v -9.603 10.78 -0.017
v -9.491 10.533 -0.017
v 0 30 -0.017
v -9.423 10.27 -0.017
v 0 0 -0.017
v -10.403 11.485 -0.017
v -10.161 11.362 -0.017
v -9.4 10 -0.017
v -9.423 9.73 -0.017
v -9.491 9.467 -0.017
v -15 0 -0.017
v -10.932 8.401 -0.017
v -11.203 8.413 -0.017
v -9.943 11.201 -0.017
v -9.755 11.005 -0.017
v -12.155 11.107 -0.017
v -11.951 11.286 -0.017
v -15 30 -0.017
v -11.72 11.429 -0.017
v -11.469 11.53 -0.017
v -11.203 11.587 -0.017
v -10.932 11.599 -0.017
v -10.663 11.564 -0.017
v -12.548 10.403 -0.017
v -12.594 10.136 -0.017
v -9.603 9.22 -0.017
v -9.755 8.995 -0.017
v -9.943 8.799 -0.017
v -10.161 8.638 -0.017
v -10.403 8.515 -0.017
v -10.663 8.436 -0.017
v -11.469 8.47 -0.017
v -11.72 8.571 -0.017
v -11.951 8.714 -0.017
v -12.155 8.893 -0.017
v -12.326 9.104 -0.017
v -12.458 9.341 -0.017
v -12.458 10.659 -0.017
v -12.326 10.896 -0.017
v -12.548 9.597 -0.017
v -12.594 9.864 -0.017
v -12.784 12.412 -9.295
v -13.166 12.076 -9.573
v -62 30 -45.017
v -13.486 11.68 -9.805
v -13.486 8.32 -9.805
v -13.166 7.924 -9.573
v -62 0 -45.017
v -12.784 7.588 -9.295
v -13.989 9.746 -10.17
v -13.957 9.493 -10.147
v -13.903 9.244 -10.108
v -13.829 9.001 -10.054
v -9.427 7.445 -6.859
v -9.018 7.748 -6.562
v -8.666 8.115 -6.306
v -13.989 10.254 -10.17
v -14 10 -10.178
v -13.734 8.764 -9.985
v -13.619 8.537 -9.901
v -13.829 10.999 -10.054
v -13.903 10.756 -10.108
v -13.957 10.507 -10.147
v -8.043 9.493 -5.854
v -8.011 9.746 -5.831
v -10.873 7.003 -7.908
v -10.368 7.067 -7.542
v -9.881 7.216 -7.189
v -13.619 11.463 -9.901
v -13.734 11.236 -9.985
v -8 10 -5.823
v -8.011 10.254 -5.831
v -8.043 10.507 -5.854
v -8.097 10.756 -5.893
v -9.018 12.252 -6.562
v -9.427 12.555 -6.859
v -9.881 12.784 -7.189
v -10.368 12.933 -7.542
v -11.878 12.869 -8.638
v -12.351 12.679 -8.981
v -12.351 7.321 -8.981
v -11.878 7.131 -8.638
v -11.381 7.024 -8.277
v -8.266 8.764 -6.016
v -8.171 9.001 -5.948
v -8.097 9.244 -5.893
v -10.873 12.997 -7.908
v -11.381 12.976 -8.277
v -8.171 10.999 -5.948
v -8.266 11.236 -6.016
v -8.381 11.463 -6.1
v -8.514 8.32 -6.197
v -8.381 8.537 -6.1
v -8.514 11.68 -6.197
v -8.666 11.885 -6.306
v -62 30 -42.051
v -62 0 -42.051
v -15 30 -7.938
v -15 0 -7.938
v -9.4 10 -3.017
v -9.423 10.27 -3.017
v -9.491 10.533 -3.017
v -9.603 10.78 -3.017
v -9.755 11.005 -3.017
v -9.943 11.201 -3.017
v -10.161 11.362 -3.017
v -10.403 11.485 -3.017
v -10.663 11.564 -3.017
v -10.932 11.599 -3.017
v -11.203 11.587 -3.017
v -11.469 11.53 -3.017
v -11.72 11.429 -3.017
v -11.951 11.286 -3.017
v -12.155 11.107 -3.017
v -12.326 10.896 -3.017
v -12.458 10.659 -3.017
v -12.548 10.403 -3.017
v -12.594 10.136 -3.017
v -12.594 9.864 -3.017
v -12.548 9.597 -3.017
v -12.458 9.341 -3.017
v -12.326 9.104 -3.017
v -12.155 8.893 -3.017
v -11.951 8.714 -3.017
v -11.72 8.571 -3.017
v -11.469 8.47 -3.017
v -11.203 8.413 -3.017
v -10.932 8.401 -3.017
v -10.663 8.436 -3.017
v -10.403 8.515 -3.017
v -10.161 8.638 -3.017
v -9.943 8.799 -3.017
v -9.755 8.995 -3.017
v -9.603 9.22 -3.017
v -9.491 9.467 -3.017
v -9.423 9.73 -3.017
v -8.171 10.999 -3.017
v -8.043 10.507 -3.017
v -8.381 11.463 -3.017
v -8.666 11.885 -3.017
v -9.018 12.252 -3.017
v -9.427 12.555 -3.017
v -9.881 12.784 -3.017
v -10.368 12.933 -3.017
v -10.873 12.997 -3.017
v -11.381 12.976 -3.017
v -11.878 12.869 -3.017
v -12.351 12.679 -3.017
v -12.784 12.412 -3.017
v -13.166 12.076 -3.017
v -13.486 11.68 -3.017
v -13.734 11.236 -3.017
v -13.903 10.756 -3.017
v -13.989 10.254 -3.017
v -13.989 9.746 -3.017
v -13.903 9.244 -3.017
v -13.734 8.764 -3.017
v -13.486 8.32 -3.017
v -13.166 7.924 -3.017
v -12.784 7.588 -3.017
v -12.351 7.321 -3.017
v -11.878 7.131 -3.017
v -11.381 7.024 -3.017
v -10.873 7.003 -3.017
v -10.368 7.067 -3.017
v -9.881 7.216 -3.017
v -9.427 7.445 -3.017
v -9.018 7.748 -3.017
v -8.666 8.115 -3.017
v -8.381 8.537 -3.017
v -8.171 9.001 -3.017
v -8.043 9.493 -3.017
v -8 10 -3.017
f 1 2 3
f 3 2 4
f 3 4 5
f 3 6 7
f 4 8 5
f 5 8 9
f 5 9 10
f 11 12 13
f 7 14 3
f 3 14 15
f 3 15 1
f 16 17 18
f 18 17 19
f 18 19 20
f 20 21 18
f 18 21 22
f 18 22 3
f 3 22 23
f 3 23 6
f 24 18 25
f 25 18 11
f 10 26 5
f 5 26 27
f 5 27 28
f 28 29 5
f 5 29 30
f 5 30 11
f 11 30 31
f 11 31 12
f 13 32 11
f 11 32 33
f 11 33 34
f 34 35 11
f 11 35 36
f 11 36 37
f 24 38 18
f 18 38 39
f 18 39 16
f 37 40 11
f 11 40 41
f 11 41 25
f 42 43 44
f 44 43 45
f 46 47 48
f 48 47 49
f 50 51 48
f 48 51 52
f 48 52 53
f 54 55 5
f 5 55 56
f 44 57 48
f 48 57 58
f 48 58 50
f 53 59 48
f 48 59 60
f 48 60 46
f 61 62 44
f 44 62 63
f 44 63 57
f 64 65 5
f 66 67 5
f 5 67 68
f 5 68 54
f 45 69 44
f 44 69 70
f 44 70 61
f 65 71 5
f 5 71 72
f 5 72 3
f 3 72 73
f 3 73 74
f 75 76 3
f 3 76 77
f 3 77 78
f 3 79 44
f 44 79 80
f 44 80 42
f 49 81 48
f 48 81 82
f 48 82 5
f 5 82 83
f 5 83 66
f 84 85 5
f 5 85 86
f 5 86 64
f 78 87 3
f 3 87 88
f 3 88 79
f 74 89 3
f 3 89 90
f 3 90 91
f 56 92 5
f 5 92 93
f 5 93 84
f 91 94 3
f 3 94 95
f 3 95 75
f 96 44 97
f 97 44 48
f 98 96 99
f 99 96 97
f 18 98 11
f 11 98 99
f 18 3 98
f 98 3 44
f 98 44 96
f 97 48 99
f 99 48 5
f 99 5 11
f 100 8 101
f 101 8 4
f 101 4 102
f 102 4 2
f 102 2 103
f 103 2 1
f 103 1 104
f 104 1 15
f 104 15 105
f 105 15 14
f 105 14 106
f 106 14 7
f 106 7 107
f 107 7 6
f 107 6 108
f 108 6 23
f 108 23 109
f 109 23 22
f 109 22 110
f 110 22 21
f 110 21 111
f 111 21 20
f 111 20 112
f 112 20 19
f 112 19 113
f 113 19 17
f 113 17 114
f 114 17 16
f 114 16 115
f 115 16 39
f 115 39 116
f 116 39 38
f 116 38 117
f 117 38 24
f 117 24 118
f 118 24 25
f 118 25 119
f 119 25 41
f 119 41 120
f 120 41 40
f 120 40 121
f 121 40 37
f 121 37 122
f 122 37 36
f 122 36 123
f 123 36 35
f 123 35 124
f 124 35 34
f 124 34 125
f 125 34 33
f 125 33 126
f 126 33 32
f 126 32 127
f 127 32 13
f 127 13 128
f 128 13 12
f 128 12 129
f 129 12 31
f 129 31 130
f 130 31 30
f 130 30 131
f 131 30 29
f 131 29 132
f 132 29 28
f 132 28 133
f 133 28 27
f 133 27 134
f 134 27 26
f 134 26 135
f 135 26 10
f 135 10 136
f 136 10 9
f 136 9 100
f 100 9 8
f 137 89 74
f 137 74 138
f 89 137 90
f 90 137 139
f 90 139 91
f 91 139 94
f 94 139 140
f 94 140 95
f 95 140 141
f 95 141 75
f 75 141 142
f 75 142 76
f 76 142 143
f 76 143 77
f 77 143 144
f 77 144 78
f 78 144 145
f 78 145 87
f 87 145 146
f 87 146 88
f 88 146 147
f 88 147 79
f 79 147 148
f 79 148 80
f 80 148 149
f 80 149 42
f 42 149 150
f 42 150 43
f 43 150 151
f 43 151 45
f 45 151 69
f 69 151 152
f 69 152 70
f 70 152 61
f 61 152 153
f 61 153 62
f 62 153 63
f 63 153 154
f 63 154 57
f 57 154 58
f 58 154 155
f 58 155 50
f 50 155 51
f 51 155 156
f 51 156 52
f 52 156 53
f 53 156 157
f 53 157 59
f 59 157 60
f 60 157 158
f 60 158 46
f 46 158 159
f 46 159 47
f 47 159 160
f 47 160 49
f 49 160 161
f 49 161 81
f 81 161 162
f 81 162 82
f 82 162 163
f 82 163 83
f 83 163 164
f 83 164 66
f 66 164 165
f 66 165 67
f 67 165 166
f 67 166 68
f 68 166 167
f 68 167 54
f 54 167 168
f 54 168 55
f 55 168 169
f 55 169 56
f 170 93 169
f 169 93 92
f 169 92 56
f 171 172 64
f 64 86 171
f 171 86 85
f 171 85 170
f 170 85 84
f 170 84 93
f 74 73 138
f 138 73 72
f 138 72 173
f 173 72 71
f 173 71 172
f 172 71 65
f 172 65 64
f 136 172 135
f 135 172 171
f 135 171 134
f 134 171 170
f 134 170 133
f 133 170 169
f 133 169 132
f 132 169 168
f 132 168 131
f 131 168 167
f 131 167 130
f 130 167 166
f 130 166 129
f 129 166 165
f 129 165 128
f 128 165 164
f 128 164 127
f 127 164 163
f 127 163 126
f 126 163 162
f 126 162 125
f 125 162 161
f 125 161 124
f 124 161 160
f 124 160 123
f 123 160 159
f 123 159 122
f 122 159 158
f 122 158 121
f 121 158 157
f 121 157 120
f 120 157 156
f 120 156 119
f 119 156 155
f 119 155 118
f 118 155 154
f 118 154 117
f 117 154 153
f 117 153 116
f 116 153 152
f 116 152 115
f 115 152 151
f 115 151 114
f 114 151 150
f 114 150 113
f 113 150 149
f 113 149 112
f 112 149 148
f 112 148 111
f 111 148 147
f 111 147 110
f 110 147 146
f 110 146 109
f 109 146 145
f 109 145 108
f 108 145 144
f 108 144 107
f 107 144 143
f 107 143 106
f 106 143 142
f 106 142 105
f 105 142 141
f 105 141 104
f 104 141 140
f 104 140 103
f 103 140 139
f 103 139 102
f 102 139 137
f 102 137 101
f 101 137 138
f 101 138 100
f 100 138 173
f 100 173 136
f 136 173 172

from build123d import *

# Parameters (mm, degrees)
EXTRUDE_1_DEPTH     = 30
SKETCH_2_R          = 1.6
CUT_EXTRUDE_1_DEPTH = 83.29890272
CUT_EXTRUDE_2_REACH = 82.696
SKETCH_3_R          = 3


with BuildPart() as part:
    # 草图1 → 凸台-拉伸1 (new body)
    with BuildSketch(Plane(origin=(0, 0, 0), x_dir=(1, 0, 0), z_dir=(0, 1, 0))):
        Polygon((0, 0), (-62, 45.045636736), (-62, 42.07907359), (-15, 7.931574774), (-15, 0), align=None)
    extrude(amount=EXTRUDE_1_DEPTH)

    # 草图2 → 切除-拉伸1 (cut, through all)
    with BuildSketch(Plane.XY):
        with Locations((-11, 10)):
            Circle(SKETCH_2_R)
    extrude(amount=-CUT_EXTRUDE_1_DEPTH, mode=Mode.SUBTRACT)

    # 切除-拉伸2: up to this plane
    cut_extrude_2_end = Plane(origin=(0, 30, 0), z_dir=(-0.5877852522924716, 0, 0.8090169943749486))
    # 草图3 → 切除-拉伸2 (cut, up to the surface)
    with BuildSketch(Plane.XY.offset(-3), mode=Mode.PRIVATE) as cut_extrude_2_sk1:
        with Locations((-11, 10)):
            Circle(SKETCH_3_R)
    cut_extrude_2_tool1 = split(extrude(cut_extrude_2_sk1.sketch, amount=-CUT_EXTRUDE_2_REACH, mode=Mode.PRIVATE), bisect_by=cut_extrude_2_end, keep=Keep.BOTH, mode=Mode.PRIVATE)
    add(cut_extrude_2_tool1.solids().sort_by_distance((-11, 10, -3))[0], mode=Mode.SUBTRACT)


solid = part.part
